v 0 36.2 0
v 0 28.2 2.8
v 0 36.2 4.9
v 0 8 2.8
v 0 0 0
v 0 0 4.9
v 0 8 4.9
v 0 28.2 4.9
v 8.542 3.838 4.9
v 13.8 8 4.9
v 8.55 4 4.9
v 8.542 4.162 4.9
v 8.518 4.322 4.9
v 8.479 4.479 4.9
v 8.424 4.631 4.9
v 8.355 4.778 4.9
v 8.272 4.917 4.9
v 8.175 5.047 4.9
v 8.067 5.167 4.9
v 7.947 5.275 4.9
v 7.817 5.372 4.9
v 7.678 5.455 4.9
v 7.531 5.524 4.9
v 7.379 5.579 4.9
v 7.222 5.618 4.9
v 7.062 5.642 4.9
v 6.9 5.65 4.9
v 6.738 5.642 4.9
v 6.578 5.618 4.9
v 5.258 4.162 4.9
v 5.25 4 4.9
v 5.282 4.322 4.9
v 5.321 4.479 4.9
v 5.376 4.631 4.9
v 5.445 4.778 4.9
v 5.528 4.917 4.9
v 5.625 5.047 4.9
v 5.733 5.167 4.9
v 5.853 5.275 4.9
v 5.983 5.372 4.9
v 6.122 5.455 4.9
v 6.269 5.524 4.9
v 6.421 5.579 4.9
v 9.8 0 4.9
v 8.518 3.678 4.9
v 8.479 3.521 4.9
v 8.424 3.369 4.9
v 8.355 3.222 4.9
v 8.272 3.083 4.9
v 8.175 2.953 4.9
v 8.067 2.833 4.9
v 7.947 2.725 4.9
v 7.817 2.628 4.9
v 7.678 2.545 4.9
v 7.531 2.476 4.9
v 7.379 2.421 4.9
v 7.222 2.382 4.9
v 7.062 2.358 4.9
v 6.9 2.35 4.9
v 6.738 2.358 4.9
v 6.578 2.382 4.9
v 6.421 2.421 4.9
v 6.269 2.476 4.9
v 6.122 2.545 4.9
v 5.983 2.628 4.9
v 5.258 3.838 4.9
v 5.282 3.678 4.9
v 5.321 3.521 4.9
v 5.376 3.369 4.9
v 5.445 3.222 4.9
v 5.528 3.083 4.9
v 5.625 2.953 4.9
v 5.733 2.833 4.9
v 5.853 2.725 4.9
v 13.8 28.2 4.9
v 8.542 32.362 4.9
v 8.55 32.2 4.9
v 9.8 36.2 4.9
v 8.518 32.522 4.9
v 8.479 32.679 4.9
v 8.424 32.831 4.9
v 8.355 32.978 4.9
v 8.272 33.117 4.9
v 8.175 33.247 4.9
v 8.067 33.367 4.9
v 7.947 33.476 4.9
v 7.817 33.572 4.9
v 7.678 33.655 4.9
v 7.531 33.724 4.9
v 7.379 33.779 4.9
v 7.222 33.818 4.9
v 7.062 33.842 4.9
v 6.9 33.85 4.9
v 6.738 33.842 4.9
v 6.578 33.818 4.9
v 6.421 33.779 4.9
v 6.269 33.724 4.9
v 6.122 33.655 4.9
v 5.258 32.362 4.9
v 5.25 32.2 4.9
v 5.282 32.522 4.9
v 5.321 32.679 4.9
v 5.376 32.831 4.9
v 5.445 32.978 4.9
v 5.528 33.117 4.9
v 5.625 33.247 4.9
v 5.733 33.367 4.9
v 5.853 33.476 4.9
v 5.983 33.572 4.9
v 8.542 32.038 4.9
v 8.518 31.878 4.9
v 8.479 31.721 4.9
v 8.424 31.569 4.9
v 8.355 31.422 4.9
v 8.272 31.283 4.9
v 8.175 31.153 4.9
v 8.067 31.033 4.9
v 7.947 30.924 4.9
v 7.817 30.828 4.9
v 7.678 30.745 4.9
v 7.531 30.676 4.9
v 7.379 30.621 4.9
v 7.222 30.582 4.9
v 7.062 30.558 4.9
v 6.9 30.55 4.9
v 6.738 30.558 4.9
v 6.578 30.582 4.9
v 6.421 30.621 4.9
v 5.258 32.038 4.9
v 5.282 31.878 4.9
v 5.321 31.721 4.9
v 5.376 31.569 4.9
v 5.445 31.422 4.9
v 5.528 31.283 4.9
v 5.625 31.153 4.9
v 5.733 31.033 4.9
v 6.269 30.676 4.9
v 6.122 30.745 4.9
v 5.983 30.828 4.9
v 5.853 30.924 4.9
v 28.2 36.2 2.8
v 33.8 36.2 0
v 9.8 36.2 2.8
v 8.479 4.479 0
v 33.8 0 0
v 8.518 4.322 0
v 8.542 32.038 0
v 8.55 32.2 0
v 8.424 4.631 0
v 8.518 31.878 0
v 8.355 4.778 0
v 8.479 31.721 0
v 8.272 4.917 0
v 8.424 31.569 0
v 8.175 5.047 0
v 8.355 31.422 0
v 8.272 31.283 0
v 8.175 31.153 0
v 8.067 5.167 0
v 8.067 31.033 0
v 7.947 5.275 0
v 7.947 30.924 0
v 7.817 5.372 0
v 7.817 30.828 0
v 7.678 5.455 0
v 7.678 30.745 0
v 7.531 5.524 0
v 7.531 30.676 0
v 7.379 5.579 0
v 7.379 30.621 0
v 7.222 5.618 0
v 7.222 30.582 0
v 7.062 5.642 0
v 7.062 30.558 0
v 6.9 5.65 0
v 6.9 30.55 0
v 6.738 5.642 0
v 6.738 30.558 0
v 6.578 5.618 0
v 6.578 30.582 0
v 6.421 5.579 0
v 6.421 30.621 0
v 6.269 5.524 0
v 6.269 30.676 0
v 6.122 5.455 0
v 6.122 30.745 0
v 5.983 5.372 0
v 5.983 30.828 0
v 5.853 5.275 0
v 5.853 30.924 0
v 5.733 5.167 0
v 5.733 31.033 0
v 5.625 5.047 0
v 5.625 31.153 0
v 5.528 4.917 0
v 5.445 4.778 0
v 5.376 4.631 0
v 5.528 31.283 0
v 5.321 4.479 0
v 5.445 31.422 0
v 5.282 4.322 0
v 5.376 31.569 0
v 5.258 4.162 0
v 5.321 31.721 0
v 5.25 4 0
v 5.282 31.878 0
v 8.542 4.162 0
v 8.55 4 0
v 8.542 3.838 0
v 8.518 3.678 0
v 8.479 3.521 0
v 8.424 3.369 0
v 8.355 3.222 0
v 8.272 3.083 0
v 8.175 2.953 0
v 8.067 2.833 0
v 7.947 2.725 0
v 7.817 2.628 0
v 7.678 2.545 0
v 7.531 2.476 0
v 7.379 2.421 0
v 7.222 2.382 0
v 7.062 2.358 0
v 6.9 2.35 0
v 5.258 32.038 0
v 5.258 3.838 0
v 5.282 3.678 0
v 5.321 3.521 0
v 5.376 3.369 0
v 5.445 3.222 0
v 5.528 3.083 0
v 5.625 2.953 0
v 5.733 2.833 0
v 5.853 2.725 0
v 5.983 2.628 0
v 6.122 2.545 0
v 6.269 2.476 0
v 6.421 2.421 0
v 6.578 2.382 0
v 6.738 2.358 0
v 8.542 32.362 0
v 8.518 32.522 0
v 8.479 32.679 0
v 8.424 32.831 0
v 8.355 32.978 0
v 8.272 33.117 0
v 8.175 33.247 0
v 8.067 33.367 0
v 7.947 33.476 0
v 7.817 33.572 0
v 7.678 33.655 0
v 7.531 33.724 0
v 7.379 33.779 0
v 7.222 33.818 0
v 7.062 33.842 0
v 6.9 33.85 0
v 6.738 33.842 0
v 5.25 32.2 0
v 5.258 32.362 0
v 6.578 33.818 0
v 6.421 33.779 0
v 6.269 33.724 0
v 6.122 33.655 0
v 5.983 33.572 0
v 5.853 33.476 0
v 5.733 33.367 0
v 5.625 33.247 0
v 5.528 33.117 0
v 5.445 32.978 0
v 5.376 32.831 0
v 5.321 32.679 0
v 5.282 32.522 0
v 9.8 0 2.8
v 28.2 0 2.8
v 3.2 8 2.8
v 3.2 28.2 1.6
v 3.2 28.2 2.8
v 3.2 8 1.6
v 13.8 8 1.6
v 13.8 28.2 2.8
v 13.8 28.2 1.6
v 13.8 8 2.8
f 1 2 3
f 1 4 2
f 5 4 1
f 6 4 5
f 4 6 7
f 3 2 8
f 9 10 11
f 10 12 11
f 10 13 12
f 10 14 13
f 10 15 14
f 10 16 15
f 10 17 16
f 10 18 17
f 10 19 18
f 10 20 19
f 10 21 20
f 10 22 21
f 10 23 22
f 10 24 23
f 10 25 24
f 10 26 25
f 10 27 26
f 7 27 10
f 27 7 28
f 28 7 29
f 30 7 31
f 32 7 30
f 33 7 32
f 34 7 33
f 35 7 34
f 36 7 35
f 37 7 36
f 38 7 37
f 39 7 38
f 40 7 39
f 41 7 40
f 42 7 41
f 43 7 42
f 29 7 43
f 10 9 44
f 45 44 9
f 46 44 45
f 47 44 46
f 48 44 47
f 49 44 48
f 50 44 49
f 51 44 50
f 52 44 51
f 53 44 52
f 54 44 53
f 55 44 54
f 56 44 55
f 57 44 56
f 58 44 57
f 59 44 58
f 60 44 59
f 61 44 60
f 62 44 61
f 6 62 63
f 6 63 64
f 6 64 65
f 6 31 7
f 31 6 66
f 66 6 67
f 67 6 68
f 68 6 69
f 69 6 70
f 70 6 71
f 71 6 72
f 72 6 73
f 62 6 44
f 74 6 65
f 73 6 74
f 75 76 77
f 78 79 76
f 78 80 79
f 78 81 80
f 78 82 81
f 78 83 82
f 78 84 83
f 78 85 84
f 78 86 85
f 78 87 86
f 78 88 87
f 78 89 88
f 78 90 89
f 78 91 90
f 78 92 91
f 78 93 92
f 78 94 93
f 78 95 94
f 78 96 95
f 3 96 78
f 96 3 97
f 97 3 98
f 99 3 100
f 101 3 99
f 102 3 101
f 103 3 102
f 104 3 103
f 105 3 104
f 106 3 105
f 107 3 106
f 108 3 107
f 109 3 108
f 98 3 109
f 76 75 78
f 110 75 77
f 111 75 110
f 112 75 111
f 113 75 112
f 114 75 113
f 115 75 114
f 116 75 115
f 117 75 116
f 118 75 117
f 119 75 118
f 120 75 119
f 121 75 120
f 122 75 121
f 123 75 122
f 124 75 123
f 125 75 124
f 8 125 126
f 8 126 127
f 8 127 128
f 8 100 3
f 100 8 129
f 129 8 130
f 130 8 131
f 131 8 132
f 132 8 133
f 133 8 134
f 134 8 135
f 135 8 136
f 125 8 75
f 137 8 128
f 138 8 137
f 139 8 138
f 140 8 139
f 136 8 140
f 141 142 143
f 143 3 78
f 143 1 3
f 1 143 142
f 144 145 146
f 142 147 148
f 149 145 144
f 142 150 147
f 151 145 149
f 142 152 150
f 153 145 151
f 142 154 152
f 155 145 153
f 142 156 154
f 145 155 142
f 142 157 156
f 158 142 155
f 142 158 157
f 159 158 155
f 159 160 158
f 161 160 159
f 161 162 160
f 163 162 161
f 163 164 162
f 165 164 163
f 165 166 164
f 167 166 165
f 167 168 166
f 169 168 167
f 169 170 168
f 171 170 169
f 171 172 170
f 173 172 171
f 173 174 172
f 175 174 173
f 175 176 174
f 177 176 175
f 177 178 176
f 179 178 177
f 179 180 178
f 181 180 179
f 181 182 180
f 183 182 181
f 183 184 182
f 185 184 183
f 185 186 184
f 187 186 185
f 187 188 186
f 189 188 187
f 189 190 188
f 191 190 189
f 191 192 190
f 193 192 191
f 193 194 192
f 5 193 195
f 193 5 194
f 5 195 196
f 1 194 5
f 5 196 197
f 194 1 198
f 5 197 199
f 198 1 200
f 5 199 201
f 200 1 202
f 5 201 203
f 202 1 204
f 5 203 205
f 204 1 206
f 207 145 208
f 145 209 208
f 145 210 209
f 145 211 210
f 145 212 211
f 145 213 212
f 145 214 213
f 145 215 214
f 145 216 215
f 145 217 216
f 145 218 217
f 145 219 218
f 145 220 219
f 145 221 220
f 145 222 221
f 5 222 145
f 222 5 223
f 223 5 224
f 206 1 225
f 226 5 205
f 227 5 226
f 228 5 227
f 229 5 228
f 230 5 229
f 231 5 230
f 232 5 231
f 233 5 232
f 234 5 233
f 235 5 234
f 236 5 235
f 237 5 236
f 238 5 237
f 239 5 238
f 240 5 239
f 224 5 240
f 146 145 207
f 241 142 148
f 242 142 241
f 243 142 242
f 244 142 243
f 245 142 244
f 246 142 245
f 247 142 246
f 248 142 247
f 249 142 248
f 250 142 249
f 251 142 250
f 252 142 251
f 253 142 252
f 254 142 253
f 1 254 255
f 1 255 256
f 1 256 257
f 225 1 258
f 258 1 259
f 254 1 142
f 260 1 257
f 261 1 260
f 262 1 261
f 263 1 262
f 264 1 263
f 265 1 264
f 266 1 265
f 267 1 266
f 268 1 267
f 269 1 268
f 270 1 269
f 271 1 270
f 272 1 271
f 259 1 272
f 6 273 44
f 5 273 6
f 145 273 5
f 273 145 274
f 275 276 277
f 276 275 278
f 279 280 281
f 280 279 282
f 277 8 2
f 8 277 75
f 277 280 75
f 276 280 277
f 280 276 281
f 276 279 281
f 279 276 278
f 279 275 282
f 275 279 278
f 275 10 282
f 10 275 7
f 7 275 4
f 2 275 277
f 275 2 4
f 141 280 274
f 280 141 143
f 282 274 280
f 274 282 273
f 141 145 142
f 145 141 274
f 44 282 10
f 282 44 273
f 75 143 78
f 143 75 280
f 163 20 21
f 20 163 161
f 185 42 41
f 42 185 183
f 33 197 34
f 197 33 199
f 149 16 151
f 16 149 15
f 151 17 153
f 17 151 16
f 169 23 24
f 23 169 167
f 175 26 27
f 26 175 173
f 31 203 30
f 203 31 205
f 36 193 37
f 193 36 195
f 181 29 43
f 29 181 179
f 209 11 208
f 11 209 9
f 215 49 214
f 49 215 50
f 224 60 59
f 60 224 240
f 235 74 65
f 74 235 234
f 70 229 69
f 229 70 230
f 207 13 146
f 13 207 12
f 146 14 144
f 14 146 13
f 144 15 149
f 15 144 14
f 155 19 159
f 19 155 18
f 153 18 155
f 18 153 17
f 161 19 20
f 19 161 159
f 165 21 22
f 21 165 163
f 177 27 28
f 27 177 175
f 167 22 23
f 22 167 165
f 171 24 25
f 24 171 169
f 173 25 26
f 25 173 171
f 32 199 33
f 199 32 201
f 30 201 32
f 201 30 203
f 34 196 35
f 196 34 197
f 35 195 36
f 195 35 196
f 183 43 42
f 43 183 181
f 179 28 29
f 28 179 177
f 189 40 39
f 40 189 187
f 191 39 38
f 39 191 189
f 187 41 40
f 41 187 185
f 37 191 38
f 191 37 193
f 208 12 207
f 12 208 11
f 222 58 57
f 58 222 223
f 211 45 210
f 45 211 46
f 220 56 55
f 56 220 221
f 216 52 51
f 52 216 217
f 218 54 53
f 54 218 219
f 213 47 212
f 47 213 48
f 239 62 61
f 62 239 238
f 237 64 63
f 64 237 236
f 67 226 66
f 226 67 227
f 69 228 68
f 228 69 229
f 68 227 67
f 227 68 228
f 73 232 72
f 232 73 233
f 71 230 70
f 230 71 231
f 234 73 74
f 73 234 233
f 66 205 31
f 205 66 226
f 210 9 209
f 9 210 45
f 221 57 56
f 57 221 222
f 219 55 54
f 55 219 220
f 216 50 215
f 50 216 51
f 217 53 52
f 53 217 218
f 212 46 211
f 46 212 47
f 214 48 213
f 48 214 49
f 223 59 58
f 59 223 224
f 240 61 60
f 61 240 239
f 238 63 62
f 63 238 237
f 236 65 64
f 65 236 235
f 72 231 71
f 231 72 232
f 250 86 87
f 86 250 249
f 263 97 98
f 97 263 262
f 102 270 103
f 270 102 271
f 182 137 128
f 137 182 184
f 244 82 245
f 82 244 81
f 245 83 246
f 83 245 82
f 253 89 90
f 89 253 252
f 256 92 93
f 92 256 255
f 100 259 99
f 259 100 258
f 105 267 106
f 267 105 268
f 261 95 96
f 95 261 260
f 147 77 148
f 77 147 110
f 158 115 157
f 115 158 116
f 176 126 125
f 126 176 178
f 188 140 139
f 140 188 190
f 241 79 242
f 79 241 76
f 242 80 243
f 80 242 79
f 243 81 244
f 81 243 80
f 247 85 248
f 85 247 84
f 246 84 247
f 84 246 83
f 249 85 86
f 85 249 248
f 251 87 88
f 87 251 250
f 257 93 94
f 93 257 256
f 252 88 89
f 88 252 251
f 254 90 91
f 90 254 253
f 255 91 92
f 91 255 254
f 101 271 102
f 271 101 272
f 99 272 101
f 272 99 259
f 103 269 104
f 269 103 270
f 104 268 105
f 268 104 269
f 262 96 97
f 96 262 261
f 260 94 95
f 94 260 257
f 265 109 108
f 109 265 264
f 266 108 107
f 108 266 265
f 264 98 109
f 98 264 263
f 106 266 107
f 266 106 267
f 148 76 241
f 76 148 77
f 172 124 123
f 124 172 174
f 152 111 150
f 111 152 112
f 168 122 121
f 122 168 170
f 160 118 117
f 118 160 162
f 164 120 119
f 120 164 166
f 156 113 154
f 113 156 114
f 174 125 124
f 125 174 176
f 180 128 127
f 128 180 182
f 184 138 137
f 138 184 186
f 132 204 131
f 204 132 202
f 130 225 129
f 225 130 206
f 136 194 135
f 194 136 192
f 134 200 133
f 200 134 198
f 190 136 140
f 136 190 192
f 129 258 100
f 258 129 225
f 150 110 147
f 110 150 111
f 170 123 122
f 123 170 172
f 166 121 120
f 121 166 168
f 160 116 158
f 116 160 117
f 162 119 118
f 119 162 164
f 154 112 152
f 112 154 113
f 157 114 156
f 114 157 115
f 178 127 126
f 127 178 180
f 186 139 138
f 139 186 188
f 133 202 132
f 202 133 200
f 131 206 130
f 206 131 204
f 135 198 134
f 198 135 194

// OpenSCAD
baseMaterialZ = 1.6; // Basic material thickness. This is the smallest thickness at the switch
insetZ = 1.2; // Inset thickness added to base thickness so switch can't fall out
switchZ = 6.6; // Thickness of switch

switchX = 10.6; // Width of the switch
latchX = 20; // Width of the part the filament runs through

switchY = 20.2; // Height of the switch
screwLatchY = 8; // Height of the part that holds the screws (two of them, one above, one below switch)

screwHoleRadius = 1.65; // 3.3mm diameter -> M3 with a bit of space

// Absolute dimension vars of the whole thing
feederswitchX = 2*baseMaterialZ + switchX + latchX;
feederswitchY = screwLatchY + switchY + screwLatchY;
feederswitchZ = 2*baseMaterialZ + switchZ; // Full thickness is 2 parts

// Simple 3 side prism
module prism(x, y, z) {
   polyhedron(
       points=[[0,0,0], [x,0,0], [x,y,0], [0,y,0], [0,y,z], [x,y,z]],
       faces=[[0,1,2,3],[5,4,3,2],[0,4,5,1],[0,3,4],[5,2,1]]
   );
}

difference() {
    // Base material is a cube, everything else is substracted from it
    cube([
        feederswitchX,
        feederswitchY,
        feederswitchZ/2 // We're modelling one half of the thing, whole thing is 2 printed parts
    ]);

    // Cut out space for the switch itself
    translate([
        2*baseMaterialZ,
        screwLatchY,
        baseMaterialZ
    ]) cube([
        switchX,
        switchY,
        switchZ/2
    ]);

    // Cut out space for pin-side of switch
    translate([
        0,
        screwLatchY,
        baseMaterialZ + insetZ
    ]) cube([
        2*baseMaterialZ,
        switchY,
        switchZ/2 - insetZ
    ]);

    // Cut out space for filament
    translate([
        2*baseMaterialZ + switchX,
        0,
        baseMaterialZ + insetZ,
    ]) cube([
        latchX,
        screwLatchY + switchY + screwLatchY,
        switchZ/2 - insetZ
    ]);

    // Cut out a 22.5 degrees slope (prism) at end of filament latch
    translate([
        feederswitchX - 2*(baseMaterialZ + insetZ),
        0,
        baseMaterialZ + insetZ
    ]) rotate([
        180,
        0,
        90
    ]) prism(
        feederswitchY,
        2*(baseMaterialZ + insetZ),
        baseMaterialZ + insetZ
    );

    // Cut out edge near screw holes for additional possible corners of filament flow, lower one
    translate([
        2*baseMaterialZ + switchX - screwLatchY/2,
        0,
        baseMaterialZ + insetZ
    ]) rotate([
        0,
        -90,
        -90
    ]) prism(
        switchZ/2 - insetZ,
        screwLatchY/2,
        screwLatchY
    );

    // Cut out edge near screw holes for additional possible corners of filament flow, upper one
    translate([
        2*baseMaterialZ + switchX - screwLatchY/2,
        switchY + 2*screwLatchY,
        baseMaterialZ + switchZ/2
    ]) rotate([
        90,
        90,
        0
    ]) prism(
        switchZ/2 - insetZ,
        screwLatchY/2,
        screwLatchY
    );

    // Cut out lower screw hole
    translate([
        (2*baseMaterialZ + switchX)/2,
        screwLatchY/2,
        0
    ]) cylinder(
        h=feederswitchZ/2,
        r=screwHoleRadius,
        $fn=64
    );

    // Cut out upper screw hole
    translate([
        (2*baseMaterialZ + switchX)/2,
        screwLatchY + switchY + screwLatchY/2,
        0
    ]) cylinder(
        h=feederswitchZ/2,
        r=screwHoleRadius,
        $fn=64
    );
}
